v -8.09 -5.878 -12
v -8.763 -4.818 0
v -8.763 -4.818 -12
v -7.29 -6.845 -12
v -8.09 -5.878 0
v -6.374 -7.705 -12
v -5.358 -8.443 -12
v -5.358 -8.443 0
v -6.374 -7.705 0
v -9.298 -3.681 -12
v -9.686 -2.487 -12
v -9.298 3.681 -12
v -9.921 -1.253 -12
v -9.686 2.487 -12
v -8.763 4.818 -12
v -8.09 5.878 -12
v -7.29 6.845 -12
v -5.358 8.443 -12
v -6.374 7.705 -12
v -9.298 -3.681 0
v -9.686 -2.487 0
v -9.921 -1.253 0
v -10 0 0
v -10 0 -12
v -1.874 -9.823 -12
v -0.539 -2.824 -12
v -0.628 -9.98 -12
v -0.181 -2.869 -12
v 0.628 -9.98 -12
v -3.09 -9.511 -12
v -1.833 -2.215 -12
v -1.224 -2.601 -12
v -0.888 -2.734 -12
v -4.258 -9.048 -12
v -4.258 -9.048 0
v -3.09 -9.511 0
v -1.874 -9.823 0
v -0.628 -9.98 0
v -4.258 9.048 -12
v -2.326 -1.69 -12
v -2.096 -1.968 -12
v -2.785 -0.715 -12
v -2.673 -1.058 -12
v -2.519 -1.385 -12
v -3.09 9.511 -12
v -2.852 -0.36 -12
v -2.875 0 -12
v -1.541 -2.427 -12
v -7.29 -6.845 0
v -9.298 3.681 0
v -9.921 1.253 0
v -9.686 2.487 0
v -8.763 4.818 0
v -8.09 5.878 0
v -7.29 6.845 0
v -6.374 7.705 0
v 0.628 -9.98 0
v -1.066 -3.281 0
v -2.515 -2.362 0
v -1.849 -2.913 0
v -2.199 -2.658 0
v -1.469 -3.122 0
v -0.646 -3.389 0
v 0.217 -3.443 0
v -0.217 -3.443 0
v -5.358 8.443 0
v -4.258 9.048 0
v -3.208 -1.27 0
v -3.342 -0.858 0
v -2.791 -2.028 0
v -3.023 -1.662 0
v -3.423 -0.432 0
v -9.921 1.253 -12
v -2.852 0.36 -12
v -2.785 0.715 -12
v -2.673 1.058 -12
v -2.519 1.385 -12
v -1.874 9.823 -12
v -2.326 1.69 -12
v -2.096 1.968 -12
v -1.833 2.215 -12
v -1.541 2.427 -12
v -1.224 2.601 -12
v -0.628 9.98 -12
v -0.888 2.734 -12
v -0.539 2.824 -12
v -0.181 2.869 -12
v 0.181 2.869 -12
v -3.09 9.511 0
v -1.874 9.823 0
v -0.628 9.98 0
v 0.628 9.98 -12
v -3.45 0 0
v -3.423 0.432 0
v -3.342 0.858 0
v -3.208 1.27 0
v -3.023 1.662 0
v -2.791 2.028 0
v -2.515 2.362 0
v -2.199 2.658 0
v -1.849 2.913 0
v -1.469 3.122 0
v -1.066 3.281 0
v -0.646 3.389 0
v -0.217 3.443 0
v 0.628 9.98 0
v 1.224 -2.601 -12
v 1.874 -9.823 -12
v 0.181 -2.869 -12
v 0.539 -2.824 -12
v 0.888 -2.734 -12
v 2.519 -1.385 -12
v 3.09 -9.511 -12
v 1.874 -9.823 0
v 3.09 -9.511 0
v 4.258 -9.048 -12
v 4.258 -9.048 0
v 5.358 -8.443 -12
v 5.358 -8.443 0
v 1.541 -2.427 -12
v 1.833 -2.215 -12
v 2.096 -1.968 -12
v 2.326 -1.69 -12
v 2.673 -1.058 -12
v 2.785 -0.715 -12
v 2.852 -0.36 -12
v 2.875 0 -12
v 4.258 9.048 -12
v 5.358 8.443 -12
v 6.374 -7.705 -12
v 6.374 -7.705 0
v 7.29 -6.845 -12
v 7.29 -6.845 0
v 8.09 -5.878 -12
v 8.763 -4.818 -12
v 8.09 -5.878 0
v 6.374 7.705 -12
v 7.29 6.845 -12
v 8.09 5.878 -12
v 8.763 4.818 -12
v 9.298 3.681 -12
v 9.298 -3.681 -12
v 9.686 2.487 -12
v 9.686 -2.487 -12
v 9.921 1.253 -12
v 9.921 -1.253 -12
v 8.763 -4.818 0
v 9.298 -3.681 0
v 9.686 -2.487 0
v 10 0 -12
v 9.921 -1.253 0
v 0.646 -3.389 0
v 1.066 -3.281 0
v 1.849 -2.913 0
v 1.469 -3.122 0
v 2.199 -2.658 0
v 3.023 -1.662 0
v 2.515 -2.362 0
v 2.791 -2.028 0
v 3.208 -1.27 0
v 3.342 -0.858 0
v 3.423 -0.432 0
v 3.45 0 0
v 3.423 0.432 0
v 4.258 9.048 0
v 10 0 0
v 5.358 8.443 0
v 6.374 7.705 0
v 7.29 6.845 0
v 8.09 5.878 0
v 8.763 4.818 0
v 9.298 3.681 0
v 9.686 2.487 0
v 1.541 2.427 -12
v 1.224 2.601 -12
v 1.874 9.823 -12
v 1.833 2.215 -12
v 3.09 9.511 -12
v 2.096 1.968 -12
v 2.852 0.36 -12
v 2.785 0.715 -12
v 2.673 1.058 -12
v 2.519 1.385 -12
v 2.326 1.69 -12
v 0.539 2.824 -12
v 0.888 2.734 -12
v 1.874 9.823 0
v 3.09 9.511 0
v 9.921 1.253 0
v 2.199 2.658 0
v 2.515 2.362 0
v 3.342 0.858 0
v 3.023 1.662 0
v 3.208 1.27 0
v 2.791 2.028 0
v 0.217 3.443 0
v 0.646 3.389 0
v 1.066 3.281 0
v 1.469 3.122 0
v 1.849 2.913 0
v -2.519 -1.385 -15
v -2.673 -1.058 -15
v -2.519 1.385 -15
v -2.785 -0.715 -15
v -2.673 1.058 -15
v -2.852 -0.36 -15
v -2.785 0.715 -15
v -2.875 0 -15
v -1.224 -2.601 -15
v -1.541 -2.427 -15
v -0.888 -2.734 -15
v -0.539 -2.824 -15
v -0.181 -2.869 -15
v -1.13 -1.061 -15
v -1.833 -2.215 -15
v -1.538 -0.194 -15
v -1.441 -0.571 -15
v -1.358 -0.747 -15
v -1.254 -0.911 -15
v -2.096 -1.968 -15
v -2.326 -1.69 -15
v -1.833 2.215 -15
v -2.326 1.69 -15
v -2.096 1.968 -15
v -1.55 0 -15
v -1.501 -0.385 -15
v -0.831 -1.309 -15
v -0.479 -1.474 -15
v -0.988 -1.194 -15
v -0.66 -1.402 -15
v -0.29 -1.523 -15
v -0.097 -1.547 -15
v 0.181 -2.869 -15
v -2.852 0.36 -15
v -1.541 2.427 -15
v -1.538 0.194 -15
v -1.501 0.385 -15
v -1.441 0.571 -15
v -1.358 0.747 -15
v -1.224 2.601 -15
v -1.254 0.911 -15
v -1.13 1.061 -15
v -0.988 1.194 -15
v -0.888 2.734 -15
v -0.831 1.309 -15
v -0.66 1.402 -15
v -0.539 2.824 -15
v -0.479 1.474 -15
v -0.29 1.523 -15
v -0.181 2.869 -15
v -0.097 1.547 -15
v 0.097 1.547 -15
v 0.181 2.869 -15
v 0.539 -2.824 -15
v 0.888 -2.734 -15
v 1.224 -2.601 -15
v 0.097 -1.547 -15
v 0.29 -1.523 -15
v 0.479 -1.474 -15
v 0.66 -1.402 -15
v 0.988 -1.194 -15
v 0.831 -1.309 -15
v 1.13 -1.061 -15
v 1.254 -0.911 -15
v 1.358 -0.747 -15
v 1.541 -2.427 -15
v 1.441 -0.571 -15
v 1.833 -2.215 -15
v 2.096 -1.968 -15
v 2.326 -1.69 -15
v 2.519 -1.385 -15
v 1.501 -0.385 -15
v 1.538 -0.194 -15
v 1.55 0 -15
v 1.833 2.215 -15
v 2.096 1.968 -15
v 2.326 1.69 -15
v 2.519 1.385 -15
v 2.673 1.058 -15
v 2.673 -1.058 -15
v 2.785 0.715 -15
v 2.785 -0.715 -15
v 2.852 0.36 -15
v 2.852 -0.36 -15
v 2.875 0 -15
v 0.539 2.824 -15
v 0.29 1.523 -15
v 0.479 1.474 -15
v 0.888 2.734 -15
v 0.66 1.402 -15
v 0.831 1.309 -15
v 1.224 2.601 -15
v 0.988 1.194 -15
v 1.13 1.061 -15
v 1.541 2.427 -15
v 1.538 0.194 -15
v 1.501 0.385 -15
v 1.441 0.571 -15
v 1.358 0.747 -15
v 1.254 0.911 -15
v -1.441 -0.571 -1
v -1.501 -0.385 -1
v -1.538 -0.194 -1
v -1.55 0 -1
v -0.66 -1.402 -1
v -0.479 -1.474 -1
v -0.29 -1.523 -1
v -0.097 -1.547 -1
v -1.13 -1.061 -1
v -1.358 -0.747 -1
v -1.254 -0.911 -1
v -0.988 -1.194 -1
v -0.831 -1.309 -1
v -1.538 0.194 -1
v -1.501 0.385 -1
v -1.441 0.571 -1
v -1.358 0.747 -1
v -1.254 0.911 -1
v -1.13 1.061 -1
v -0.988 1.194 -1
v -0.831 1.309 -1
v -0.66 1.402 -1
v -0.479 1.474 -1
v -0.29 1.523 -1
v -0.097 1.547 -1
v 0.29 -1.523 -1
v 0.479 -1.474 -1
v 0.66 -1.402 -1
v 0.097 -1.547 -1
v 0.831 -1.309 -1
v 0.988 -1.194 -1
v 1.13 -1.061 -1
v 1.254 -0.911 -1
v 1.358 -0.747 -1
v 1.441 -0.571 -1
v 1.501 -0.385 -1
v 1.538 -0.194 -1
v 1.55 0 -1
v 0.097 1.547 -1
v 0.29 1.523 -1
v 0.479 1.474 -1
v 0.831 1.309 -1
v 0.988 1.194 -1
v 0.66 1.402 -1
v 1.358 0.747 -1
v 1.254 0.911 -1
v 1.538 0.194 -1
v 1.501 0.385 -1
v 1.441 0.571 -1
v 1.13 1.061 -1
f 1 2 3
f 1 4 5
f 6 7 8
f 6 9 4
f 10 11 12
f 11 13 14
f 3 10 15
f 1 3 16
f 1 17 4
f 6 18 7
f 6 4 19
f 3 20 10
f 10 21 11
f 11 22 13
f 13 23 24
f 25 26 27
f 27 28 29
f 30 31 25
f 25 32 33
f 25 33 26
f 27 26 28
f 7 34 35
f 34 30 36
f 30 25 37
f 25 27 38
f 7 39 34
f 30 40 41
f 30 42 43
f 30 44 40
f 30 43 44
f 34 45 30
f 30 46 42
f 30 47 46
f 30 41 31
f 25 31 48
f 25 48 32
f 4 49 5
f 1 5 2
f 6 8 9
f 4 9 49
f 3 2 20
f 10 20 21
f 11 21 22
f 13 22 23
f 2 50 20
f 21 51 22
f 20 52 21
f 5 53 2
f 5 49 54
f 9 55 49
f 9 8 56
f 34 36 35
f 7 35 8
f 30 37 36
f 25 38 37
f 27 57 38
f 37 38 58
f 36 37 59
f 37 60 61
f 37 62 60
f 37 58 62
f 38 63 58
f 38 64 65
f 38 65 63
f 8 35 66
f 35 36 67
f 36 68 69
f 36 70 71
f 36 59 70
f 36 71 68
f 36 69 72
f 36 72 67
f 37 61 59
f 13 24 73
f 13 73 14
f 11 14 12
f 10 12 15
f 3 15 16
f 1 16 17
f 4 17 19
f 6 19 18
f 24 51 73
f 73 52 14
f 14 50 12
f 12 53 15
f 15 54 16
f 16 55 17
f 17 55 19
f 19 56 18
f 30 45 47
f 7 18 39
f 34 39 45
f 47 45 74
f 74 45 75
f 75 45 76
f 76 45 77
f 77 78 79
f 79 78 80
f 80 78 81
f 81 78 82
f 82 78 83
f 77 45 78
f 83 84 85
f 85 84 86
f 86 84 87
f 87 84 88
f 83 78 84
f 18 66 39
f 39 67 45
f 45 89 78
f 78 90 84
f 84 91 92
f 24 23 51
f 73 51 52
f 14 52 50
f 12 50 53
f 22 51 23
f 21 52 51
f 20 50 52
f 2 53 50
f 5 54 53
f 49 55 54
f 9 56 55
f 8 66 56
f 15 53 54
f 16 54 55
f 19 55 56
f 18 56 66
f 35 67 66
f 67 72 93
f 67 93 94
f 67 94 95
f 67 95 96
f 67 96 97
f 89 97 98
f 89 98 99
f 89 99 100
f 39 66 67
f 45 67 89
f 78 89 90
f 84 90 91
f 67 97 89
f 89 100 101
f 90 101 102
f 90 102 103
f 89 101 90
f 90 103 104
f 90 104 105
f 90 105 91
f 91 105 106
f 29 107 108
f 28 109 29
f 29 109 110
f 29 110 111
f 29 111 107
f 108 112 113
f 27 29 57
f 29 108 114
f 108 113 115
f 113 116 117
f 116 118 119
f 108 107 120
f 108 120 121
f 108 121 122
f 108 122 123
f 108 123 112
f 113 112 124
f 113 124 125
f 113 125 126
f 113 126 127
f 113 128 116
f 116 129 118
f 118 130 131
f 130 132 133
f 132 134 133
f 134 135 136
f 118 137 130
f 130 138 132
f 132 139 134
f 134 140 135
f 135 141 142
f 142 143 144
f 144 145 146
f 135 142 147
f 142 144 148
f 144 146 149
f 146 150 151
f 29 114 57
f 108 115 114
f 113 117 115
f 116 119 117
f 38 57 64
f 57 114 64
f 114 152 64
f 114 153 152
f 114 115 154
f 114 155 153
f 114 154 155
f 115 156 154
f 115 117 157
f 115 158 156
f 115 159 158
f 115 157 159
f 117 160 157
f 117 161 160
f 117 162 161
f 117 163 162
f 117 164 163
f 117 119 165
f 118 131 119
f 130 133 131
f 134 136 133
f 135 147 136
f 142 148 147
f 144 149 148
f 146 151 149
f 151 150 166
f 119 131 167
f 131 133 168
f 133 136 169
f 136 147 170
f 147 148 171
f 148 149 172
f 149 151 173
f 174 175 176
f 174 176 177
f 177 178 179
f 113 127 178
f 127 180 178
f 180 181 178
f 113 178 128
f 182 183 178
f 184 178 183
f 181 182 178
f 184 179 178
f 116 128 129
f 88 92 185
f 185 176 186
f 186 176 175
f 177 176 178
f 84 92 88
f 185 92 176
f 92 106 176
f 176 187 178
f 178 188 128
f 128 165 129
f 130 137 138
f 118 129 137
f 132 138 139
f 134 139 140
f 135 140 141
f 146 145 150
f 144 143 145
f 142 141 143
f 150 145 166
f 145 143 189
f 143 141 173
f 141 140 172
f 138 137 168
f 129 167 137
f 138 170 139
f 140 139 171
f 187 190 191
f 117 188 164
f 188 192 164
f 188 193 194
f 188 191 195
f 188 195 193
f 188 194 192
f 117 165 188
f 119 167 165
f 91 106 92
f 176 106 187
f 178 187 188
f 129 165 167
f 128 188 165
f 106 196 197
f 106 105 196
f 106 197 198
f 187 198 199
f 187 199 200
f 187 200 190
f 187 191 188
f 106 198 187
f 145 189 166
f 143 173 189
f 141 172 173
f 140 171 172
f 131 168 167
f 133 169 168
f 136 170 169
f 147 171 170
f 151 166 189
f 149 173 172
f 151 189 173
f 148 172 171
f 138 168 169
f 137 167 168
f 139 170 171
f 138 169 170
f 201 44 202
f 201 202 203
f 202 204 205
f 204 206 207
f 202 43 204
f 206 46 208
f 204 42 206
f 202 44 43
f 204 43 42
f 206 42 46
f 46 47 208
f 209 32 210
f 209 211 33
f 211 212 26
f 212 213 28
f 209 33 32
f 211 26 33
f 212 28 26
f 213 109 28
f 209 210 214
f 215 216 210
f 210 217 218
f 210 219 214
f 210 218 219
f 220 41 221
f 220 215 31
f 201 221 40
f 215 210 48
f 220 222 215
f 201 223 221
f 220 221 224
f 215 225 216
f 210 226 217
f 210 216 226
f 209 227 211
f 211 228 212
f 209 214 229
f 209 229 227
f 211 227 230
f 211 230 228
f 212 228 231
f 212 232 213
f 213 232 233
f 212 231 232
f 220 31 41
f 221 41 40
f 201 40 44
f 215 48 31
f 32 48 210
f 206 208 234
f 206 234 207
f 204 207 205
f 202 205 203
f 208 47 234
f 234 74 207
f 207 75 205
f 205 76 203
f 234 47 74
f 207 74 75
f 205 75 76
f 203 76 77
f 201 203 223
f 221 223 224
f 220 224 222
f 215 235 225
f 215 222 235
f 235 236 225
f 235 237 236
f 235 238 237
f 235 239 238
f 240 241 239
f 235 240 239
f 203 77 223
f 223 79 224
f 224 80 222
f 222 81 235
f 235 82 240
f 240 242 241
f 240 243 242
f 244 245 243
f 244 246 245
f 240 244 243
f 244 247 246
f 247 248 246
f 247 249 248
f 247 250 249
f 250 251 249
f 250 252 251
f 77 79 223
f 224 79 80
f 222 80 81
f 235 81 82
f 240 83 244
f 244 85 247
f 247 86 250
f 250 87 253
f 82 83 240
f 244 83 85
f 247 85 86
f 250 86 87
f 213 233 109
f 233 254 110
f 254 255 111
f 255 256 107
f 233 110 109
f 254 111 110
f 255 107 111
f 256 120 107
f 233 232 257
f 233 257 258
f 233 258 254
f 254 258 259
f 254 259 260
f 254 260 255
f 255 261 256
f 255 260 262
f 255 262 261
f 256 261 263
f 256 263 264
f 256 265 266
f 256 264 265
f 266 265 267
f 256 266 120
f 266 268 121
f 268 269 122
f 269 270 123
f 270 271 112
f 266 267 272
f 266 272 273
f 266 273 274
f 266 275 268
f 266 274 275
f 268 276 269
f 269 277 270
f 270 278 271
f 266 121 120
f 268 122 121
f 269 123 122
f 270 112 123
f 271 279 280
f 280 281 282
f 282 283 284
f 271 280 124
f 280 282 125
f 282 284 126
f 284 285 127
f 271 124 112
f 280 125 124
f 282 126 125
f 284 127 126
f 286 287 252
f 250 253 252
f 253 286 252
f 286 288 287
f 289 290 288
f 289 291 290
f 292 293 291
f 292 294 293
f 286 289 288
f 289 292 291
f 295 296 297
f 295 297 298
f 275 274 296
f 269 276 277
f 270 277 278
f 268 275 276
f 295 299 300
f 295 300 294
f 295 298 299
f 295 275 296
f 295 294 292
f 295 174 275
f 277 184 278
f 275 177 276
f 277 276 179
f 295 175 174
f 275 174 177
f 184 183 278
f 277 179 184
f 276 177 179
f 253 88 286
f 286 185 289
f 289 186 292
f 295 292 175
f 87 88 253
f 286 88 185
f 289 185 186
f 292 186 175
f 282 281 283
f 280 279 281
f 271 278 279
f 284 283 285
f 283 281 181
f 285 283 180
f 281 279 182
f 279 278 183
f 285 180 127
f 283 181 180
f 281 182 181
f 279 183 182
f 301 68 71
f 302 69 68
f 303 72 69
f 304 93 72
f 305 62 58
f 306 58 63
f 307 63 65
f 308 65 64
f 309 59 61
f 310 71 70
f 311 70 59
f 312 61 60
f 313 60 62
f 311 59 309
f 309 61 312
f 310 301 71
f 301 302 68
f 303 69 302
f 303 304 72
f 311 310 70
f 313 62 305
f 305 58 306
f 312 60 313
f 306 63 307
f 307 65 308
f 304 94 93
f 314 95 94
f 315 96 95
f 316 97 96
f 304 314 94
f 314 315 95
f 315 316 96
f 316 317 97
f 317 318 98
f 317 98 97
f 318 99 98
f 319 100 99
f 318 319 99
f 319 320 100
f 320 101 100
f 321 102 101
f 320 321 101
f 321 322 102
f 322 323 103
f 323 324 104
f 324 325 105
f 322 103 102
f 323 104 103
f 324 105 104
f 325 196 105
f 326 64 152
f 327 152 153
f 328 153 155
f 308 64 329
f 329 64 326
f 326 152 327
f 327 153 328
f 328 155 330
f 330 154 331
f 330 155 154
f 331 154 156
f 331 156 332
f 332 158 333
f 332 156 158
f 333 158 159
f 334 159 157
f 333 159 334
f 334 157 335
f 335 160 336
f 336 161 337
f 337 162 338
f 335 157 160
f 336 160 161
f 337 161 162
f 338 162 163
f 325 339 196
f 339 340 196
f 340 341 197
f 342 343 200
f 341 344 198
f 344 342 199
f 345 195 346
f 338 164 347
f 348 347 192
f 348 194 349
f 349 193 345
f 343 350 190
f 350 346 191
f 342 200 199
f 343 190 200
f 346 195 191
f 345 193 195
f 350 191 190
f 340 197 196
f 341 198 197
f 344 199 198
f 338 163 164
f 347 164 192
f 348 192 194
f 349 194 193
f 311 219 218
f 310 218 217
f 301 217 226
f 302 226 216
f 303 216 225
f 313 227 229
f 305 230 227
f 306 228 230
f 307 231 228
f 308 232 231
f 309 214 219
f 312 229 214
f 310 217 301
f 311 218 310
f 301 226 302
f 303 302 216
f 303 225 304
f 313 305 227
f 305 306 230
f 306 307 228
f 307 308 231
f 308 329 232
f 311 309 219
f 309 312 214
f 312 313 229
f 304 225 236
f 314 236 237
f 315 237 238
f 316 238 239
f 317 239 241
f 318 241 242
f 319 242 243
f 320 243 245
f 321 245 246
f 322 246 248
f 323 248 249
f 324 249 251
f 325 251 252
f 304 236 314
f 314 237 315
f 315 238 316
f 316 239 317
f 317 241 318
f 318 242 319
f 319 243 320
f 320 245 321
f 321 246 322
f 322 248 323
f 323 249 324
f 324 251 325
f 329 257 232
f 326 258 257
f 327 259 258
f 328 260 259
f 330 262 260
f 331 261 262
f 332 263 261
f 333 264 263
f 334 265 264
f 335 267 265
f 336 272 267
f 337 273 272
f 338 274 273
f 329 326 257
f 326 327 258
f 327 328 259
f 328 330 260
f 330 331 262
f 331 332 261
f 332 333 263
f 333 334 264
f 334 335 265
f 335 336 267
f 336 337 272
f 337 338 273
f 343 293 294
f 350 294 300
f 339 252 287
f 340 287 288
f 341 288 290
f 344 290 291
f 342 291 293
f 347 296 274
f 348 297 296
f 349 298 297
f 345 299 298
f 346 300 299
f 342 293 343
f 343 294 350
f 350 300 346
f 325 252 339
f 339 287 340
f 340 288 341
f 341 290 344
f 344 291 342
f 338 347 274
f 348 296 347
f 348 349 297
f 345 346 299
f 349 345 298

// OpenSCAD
$fn = 50;

difference() {
	union() {
		translate(v = [0, 0, -12.0]) {
			cylinder(h = 12, r = 10.0);
		}
		#translate(v = [0, 0, -15.0]) {
			cylinder(h = 15, r = 2.875);
		}
	}
	union() {
		translate(v = [0, 0, 0]) {
			rotate(a = [0, 0, 0]) {
				difference() {
					union() {
						translate(v = [0, 0, -15.0]) {
							cylinder(h = 15, r = 1.25);
						}
						translate(v = [0, 0, -1.0]) {
							cylinder(h = 1.0, r1 = 1.55, r2 = 3.45);
						}
						translate(v = [0, 0, -15.0]) {
							cylinder(h = 15, r = 1.55);
						}
						translate(v = [0, 0, -15.0]) {
							cylinder(h = 15, r = 1.25);
						}
					}
					union();
				}
			}
		}
	}
}
